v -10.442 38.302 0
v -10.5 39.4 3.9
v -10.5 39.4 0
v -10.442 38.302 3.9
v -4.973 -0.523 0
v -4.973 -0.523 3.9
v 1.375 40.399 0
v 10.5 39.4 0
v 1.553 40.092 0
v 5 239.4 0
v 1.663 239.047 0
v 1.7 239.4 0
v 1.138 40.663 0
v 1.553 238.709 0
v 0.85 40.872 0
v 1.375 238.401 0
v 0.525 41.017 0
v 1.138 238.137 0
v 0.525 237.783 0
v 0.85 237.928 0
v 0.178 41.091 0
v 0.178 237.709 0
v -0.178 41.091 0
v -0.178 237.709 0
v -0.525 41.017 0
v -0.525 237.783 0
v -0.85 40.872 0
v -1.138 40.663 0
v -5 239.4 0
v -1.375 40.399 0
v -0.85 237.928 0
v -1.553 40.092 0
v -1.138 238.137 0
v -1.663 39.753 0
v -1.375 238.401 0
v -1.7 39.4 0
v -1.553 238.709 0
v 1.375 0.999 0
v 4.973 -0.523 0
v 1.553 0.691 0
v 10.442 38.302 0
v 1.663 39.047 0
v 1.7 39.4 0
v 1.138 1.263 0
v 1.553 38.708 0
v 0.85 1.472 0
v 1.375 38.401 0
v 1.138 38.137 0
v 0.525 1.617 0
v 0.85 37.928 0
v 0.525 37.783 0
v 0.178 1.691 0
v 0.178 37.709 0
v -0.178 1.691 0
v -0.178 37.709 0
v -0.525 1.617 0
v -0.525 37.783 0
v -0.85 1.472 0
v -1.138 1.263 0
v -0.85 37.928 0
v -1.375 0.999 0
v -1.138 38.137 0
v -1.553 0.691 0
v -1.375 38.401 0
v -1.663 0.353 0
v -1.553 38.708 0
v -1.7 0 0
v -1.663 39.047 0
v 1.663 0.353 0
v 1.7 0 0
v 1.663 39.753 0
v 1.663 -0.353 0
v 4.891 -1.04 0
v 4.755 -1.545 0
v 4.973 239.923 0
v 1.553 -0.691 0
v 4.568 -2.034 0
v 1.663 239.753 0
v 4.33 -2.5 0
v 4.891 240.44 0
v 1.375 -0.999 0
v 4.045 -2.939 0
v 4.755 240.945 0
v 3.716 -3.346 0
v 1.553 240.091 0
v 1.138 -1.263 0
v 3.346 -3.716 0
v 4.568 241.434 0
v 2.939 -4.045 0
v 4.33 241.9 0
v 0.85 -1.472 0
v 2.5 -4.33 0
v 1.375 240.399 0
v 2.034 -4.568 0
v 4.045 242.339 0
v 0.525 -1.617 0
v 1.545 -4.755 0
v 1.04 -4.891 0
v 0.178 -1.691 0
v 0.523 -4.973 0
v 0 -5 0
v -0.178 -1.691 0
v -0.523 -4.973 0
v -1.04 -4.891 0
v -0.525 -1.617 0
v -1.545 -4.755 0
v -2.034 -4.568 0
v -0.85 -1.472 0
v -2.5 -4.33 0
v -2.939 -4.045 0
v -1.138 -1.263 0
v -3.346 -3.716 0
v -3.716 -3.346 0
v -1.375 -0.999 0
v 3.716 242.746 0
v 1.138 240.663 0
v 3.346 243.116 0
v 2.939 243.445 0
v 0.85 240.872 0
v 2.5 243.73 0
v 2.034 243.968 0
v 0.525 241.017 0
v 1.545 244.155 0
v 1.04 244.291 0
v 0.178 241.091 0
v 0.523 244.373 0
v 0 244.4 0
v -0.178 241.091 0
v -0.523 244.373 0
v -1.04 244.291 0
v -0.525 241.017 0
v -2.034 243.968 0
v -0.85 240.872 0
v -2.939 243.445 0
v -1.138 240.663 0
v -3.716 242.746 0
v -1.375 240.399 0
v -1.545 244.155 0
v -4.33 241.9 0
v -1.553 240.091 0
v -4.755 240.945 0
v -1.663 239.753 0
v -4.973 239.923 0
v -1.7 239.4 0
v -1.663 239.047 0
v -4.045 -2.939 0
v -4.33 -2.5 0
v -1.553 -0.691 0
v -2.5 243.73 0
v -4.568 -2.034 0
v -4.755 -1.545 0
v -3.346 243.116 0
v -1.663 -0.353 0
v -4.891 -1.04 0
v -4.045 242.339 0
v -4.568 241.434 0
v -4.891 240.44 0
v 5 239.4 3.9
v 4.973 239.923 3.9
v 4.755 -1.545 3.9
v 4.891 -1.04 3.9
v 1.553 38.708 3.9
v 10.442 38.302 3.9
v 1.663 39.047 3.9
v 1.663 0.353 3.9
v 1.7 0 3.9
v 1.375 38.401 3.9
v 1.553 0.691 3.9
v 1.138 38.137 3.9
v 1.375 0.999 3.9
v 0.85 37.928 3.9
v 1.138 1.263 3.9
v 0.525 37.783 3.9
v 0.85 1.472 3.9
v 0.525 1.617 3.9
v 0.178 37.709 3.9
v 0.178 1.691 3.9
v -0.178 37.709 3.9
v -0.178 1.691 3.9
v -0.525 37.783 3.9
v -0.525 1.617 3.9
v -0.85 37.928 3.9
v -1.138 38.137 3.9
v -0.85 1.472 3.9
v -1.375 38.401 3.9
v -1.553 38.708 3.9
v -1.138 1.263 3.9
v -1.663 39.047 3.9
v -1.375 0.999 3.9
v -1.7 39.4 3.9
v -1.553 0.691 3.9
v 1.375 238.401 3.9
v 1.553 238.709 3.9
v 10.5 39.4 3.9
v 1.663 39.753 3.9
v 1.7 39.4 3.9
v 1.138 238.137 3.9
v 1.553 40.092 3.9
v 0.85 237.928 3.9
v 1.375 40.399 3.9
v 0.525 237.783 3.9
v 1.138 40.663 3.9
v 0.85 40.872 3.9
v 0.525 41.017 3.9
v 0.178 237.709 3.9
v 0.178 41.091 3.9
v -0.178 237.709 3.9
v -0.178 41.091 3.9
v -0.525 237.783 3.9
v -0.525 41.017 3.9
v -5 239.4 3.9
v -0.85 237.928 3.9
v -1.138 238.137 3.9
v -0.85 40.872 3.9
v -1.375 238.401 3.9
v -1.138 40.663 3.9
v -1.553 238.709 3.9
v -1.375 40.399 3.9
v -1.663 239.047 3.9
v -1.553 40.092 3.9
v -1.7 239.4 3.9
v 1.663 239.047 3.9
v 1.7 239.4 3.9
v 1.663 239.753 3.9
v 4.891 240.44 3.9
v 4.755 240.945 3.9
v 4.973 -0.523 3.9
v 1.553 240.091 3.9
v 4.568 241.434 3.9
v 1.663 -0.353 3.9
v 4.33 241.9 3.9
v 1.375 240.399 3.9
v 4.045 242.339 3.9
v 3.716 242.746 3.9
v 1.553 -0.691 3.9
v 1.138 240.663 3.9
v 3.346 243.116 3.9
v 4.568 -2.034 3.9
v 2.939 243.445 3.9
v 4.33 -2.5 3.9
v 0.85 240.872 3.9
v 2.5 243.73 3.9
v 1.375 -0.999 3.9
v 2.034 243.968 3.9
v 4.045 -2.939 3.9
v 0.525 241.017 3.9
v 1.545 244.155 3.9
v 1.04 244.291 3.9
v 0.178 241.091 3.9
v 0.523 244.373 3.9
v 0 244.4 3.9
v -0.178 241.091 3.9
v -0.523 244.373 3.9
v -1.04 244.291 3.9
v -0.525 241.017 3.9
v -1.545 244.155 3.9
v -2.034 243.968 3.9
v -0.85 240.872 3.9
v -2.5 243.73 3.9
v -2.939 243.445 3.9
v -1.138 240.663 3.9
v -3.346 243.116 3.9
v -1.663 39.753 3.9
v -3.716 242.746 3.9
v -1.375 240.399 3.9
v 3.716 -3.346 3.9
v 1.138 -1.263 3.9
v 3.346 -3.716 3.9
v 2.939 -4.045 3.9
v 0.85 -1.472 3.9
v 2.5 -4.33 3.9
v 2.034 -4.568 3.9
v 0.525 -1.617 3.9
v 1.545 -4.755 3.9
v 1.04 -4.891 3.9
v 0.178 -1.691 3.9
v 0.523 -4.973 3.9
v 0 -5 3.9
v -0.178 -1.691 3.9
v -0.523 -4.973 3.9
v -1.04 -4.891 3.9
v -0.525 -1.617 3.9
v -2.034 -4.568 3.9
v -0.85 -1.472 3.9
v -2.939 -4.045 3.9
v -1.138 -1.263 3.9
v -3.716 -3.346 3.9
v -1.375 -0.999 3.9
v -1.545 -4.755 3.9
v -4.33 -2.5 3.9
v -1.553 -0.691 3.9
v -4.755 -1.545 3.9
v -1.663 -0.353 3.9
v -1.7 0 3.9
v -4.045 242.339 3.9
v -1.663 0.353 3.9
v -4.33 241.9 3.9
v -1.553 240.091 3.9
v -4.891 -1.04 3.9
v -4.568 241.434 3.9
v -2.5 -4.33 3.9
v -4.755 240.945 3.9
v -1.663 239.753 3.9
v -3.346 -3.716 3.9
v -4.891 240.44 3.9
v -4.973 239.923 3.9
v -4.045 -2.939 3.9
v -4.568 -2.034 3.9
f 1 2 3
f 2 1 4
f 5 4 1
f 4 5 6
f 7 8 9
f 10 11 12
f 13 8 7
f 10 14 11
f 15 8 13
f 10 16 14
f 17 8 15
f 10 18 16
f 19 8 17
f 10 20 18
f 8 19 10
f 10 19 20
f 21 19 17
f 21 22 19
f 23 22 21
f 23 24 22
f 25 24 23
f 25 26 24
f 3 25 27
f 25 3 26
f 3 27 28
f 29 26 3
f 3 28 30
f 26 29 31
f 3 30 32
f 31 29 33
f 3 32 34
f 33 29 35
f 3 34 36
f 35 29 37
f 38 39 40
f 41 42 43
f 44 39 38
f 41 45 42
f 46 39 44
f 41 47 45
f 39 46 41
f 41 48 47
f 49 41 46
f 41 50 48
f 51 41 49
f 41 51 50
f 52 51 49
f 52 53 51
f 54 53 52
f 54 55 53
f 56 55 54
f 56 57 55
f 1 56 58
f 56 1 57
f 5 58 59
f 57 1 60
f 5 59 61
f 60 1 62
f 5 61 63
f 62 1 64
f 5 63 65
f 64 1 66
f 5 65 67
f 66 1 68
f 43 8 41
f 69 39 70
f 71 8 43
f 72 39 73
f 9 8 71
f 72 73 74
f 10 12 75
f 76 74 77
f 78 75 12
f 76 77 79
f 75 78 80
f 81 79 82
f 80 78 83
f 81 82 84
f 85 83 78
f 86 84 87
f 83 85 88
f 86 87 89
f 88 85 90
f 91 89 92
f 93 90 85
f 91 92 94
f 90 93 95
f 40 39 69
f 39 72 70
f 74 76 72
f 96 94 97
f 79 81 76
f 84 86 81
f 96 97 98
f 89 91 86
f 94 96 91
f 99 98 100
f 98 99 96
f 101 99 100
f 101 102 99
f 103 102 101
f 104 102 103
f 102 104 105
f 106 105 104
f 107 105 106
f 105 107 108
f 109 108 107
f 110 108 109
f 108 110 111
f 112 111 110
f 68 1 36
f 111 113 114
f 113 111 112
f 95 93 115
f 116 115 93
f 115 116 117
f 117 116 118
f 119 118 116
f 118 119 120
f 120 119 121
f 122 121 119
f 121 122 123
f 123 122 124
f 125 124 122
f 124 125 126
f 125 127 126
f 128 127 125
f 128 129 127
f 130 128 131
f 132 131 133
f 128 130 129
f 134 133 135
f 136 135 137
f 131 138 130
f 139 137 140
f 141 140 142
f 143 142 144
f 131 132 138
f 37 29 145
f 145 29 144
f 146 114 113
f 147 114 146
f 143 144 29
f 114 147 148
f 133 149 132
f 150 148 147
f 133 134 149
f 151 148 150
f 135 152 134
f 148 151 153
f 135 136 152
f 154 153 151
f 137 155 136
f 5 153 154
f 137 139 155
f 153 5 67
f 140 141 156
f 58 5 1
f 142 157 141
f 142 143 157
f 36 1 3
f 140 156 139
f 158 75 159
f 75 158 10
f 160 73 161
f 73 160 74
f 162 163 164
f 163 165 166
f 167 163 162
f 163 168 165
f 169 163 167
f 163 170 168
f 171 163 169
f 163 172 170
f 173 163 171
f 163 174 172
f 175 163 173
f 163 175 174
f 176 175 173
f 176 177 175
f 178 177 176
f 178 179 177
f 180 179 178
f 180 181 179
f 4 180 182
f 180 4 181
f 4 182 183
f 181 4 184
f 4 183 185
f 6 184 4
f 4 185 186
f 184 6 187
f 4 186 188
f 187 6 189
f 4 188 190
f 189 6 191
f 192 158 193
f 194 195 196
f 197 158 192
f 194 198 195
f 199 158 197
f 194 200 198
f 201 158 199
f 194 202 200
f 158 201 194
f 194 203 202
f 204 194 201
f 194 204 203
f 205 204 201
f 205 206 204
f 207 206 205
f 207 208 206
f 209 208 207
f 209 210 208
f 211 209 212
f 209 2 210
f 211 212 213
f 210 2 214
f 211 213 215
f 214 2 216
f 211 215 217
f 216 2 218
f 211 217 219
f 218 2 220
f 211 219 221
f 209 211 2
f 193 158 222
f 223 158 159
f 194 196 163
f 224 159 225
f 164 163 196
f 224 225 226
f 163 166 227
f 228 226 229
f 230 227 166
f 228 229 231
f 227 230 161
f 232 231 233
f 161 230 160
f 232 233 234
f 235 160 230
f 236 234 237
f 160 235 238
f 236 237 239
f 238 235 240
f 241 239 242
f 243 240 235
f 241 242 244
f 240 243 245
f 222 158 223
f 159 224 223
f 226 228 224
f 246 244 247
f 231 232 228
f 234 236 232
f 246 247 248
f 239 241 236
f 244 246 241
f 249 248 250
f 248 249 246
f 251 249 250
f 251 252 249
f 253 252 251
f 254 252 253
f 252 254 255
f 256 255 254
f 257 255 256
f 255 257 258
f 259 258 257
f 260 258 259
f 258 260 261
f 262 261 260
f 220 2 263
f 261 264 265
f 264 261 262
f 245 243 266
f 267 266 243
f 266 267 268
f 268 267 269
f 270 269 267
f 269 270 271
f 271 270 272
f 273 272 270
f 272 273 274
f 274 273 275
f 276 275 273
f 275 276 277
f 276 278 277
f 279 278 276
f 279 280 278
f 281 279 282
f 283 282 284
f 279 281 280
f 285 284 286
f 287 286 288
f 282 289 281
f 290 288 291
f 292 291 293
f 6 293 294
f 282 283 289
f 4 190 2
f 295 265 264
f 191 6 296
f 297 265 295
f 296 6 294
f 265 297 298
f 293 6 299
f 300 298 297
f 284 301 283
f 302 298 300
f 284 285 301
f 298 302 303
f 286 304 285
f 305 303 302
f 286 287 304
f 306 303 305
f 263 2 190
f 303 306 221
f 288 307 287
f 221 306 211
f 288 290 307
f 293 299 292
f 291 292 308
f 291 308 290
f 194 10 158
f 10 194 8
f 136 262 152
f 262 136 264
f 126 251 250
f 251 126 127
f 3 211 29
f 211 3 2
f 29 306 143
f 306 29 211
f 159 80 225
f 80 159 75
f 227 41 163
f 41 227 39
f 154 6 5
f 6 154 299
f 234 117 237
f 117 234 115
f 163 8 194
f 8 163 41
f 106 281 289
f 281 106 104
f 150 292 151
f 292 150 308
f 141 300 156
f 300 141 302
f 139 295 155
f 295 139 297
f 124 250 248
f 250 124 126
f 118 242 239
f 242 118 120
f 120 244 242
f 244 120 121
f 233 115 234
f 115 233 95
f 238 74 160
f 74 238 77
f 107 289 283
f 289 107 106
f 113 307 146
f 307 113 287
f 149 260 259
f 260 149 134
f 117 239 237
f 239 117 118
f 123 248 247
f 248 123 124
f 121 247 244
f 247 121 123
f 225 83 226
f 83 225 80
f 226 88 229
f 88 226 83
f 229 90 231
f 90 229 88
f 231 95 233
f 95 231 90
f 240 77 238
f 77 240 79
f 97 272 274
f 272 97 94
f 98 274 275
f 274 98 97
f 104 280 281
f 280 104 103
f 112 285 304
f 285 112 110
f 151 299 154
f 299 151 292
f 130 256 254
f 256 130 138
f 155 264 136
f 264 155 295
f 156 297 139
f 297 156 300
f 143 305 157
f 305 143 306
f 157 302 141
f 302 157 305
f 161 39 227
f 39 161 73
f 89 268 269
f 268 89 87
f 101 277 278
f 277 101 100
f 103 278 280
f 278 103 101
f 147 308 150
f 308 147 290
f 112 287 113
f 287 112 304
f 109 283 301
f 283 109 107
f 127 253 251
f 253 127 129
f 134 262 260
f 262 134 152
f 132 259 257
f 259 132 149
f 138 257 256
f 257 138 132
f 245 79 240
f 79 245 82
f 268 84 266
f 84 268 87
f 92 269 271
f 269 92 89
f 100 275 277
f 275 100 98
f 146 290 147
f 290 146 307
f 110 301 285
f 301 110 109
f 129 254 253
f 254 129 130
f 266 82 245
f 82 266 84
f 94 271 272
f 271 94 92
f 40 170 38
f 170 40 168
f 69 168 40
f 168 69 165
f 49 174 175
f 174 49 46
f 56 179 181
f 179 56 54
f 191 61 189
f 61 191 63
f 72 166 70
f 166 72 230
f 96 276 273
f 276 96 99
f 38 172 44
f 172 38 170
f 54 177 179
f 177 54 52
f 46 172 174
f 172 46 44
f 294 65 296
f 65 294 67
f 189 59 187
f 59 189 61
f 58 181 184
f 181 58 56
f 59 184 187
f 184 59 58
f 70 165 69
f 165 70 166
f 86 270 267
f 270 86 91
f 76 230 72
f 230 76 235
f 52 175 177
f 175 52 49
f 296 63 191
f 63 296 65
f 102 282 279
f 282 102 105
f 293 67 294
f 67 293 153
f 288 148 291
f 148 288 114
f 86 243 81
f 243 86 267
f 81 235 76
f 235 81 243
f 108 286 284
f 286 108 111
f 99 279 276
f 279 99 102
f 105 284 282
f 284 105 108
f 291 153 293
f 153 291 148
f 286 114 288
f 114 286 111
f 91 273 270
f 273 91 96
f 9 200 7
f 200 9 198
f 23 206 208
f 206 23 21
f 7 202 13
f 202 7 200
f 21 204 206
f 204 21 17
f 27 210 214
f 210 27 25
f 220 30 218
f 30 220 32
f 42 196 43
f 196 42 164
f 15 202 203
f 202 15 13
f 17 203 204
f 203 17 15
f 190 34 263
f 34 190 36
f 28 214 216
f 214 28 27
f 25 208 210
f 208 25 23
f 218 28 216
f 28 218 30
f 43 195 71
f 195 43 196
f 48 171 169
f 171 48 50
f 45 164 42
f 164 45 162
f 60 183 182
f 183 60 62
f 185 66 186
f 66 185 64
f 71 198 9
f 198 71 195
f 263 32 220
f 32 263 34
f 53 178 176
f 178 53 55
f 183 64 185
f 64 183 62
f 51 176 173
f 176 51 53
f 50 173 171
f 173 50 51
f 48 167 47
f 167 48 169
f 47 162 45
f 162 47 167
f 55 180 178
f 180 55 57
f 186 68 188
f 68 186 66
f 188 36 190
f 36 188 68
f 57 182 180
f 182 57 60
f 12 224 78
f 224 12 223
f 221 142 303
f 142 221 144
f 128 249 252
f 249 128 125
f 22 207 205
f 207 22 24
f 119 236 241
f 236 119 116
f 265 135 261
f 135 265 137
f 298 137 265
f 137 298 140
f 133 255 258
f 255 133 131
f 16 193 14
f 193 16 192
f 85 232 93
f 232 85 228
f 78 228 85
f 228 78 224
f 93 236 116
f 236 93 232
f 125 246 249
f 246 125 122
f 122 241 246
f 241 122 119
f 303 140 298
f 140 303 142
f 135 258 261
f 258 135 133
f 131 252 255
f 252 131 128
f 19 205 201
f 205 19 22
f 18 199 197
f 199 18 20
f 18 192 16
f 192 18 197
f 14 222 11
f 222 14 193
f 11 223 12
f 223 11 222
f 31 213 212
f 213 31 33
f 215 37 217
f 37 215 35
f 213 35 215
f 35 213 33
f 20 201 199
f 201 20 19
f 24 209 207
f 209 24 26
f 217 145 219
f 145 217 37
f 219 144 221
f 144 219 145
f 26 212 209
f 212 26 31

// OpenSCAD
//general
$fn = 30;                  //convexity of general curved faces
thickness = 3.9;             //thickness of arm

//circular servo horn measurements
hornDiameter = 21;             //diameter of the circular horn

//arm specific stuff
armLength =  200;//155               //horn center to horn center distance for arm length
leverLength = 39.4;             //length of lever bit on end of arm

pivotDiameter = 10;            //diameter of pivoting end
freeTurning3mm = 3.4;          //diameter of hole for free turning motion

difference(){
   hull(){
      cylinder(d=pivotDiameter,h=thickness, $fn = 60);
      translate([0,leverLength,0])
      cylinder(d=hornDiameter,h=thickness, $fn = 60);
      translate([0,leverLength+armLength,0])
      cylinder(d=pivotDiameter, h=thickness, $fn = 60);
   }
   cylinder(d=freeTurning3mm,h=thickness);
   translate([0,leverLength,0])
   cylinder(d=freeTurning3mm,h=thickness);
   translate([0,leverLength+armLength,0])
   cylinder(d=freeTurning3mm,h=thickness);
}
